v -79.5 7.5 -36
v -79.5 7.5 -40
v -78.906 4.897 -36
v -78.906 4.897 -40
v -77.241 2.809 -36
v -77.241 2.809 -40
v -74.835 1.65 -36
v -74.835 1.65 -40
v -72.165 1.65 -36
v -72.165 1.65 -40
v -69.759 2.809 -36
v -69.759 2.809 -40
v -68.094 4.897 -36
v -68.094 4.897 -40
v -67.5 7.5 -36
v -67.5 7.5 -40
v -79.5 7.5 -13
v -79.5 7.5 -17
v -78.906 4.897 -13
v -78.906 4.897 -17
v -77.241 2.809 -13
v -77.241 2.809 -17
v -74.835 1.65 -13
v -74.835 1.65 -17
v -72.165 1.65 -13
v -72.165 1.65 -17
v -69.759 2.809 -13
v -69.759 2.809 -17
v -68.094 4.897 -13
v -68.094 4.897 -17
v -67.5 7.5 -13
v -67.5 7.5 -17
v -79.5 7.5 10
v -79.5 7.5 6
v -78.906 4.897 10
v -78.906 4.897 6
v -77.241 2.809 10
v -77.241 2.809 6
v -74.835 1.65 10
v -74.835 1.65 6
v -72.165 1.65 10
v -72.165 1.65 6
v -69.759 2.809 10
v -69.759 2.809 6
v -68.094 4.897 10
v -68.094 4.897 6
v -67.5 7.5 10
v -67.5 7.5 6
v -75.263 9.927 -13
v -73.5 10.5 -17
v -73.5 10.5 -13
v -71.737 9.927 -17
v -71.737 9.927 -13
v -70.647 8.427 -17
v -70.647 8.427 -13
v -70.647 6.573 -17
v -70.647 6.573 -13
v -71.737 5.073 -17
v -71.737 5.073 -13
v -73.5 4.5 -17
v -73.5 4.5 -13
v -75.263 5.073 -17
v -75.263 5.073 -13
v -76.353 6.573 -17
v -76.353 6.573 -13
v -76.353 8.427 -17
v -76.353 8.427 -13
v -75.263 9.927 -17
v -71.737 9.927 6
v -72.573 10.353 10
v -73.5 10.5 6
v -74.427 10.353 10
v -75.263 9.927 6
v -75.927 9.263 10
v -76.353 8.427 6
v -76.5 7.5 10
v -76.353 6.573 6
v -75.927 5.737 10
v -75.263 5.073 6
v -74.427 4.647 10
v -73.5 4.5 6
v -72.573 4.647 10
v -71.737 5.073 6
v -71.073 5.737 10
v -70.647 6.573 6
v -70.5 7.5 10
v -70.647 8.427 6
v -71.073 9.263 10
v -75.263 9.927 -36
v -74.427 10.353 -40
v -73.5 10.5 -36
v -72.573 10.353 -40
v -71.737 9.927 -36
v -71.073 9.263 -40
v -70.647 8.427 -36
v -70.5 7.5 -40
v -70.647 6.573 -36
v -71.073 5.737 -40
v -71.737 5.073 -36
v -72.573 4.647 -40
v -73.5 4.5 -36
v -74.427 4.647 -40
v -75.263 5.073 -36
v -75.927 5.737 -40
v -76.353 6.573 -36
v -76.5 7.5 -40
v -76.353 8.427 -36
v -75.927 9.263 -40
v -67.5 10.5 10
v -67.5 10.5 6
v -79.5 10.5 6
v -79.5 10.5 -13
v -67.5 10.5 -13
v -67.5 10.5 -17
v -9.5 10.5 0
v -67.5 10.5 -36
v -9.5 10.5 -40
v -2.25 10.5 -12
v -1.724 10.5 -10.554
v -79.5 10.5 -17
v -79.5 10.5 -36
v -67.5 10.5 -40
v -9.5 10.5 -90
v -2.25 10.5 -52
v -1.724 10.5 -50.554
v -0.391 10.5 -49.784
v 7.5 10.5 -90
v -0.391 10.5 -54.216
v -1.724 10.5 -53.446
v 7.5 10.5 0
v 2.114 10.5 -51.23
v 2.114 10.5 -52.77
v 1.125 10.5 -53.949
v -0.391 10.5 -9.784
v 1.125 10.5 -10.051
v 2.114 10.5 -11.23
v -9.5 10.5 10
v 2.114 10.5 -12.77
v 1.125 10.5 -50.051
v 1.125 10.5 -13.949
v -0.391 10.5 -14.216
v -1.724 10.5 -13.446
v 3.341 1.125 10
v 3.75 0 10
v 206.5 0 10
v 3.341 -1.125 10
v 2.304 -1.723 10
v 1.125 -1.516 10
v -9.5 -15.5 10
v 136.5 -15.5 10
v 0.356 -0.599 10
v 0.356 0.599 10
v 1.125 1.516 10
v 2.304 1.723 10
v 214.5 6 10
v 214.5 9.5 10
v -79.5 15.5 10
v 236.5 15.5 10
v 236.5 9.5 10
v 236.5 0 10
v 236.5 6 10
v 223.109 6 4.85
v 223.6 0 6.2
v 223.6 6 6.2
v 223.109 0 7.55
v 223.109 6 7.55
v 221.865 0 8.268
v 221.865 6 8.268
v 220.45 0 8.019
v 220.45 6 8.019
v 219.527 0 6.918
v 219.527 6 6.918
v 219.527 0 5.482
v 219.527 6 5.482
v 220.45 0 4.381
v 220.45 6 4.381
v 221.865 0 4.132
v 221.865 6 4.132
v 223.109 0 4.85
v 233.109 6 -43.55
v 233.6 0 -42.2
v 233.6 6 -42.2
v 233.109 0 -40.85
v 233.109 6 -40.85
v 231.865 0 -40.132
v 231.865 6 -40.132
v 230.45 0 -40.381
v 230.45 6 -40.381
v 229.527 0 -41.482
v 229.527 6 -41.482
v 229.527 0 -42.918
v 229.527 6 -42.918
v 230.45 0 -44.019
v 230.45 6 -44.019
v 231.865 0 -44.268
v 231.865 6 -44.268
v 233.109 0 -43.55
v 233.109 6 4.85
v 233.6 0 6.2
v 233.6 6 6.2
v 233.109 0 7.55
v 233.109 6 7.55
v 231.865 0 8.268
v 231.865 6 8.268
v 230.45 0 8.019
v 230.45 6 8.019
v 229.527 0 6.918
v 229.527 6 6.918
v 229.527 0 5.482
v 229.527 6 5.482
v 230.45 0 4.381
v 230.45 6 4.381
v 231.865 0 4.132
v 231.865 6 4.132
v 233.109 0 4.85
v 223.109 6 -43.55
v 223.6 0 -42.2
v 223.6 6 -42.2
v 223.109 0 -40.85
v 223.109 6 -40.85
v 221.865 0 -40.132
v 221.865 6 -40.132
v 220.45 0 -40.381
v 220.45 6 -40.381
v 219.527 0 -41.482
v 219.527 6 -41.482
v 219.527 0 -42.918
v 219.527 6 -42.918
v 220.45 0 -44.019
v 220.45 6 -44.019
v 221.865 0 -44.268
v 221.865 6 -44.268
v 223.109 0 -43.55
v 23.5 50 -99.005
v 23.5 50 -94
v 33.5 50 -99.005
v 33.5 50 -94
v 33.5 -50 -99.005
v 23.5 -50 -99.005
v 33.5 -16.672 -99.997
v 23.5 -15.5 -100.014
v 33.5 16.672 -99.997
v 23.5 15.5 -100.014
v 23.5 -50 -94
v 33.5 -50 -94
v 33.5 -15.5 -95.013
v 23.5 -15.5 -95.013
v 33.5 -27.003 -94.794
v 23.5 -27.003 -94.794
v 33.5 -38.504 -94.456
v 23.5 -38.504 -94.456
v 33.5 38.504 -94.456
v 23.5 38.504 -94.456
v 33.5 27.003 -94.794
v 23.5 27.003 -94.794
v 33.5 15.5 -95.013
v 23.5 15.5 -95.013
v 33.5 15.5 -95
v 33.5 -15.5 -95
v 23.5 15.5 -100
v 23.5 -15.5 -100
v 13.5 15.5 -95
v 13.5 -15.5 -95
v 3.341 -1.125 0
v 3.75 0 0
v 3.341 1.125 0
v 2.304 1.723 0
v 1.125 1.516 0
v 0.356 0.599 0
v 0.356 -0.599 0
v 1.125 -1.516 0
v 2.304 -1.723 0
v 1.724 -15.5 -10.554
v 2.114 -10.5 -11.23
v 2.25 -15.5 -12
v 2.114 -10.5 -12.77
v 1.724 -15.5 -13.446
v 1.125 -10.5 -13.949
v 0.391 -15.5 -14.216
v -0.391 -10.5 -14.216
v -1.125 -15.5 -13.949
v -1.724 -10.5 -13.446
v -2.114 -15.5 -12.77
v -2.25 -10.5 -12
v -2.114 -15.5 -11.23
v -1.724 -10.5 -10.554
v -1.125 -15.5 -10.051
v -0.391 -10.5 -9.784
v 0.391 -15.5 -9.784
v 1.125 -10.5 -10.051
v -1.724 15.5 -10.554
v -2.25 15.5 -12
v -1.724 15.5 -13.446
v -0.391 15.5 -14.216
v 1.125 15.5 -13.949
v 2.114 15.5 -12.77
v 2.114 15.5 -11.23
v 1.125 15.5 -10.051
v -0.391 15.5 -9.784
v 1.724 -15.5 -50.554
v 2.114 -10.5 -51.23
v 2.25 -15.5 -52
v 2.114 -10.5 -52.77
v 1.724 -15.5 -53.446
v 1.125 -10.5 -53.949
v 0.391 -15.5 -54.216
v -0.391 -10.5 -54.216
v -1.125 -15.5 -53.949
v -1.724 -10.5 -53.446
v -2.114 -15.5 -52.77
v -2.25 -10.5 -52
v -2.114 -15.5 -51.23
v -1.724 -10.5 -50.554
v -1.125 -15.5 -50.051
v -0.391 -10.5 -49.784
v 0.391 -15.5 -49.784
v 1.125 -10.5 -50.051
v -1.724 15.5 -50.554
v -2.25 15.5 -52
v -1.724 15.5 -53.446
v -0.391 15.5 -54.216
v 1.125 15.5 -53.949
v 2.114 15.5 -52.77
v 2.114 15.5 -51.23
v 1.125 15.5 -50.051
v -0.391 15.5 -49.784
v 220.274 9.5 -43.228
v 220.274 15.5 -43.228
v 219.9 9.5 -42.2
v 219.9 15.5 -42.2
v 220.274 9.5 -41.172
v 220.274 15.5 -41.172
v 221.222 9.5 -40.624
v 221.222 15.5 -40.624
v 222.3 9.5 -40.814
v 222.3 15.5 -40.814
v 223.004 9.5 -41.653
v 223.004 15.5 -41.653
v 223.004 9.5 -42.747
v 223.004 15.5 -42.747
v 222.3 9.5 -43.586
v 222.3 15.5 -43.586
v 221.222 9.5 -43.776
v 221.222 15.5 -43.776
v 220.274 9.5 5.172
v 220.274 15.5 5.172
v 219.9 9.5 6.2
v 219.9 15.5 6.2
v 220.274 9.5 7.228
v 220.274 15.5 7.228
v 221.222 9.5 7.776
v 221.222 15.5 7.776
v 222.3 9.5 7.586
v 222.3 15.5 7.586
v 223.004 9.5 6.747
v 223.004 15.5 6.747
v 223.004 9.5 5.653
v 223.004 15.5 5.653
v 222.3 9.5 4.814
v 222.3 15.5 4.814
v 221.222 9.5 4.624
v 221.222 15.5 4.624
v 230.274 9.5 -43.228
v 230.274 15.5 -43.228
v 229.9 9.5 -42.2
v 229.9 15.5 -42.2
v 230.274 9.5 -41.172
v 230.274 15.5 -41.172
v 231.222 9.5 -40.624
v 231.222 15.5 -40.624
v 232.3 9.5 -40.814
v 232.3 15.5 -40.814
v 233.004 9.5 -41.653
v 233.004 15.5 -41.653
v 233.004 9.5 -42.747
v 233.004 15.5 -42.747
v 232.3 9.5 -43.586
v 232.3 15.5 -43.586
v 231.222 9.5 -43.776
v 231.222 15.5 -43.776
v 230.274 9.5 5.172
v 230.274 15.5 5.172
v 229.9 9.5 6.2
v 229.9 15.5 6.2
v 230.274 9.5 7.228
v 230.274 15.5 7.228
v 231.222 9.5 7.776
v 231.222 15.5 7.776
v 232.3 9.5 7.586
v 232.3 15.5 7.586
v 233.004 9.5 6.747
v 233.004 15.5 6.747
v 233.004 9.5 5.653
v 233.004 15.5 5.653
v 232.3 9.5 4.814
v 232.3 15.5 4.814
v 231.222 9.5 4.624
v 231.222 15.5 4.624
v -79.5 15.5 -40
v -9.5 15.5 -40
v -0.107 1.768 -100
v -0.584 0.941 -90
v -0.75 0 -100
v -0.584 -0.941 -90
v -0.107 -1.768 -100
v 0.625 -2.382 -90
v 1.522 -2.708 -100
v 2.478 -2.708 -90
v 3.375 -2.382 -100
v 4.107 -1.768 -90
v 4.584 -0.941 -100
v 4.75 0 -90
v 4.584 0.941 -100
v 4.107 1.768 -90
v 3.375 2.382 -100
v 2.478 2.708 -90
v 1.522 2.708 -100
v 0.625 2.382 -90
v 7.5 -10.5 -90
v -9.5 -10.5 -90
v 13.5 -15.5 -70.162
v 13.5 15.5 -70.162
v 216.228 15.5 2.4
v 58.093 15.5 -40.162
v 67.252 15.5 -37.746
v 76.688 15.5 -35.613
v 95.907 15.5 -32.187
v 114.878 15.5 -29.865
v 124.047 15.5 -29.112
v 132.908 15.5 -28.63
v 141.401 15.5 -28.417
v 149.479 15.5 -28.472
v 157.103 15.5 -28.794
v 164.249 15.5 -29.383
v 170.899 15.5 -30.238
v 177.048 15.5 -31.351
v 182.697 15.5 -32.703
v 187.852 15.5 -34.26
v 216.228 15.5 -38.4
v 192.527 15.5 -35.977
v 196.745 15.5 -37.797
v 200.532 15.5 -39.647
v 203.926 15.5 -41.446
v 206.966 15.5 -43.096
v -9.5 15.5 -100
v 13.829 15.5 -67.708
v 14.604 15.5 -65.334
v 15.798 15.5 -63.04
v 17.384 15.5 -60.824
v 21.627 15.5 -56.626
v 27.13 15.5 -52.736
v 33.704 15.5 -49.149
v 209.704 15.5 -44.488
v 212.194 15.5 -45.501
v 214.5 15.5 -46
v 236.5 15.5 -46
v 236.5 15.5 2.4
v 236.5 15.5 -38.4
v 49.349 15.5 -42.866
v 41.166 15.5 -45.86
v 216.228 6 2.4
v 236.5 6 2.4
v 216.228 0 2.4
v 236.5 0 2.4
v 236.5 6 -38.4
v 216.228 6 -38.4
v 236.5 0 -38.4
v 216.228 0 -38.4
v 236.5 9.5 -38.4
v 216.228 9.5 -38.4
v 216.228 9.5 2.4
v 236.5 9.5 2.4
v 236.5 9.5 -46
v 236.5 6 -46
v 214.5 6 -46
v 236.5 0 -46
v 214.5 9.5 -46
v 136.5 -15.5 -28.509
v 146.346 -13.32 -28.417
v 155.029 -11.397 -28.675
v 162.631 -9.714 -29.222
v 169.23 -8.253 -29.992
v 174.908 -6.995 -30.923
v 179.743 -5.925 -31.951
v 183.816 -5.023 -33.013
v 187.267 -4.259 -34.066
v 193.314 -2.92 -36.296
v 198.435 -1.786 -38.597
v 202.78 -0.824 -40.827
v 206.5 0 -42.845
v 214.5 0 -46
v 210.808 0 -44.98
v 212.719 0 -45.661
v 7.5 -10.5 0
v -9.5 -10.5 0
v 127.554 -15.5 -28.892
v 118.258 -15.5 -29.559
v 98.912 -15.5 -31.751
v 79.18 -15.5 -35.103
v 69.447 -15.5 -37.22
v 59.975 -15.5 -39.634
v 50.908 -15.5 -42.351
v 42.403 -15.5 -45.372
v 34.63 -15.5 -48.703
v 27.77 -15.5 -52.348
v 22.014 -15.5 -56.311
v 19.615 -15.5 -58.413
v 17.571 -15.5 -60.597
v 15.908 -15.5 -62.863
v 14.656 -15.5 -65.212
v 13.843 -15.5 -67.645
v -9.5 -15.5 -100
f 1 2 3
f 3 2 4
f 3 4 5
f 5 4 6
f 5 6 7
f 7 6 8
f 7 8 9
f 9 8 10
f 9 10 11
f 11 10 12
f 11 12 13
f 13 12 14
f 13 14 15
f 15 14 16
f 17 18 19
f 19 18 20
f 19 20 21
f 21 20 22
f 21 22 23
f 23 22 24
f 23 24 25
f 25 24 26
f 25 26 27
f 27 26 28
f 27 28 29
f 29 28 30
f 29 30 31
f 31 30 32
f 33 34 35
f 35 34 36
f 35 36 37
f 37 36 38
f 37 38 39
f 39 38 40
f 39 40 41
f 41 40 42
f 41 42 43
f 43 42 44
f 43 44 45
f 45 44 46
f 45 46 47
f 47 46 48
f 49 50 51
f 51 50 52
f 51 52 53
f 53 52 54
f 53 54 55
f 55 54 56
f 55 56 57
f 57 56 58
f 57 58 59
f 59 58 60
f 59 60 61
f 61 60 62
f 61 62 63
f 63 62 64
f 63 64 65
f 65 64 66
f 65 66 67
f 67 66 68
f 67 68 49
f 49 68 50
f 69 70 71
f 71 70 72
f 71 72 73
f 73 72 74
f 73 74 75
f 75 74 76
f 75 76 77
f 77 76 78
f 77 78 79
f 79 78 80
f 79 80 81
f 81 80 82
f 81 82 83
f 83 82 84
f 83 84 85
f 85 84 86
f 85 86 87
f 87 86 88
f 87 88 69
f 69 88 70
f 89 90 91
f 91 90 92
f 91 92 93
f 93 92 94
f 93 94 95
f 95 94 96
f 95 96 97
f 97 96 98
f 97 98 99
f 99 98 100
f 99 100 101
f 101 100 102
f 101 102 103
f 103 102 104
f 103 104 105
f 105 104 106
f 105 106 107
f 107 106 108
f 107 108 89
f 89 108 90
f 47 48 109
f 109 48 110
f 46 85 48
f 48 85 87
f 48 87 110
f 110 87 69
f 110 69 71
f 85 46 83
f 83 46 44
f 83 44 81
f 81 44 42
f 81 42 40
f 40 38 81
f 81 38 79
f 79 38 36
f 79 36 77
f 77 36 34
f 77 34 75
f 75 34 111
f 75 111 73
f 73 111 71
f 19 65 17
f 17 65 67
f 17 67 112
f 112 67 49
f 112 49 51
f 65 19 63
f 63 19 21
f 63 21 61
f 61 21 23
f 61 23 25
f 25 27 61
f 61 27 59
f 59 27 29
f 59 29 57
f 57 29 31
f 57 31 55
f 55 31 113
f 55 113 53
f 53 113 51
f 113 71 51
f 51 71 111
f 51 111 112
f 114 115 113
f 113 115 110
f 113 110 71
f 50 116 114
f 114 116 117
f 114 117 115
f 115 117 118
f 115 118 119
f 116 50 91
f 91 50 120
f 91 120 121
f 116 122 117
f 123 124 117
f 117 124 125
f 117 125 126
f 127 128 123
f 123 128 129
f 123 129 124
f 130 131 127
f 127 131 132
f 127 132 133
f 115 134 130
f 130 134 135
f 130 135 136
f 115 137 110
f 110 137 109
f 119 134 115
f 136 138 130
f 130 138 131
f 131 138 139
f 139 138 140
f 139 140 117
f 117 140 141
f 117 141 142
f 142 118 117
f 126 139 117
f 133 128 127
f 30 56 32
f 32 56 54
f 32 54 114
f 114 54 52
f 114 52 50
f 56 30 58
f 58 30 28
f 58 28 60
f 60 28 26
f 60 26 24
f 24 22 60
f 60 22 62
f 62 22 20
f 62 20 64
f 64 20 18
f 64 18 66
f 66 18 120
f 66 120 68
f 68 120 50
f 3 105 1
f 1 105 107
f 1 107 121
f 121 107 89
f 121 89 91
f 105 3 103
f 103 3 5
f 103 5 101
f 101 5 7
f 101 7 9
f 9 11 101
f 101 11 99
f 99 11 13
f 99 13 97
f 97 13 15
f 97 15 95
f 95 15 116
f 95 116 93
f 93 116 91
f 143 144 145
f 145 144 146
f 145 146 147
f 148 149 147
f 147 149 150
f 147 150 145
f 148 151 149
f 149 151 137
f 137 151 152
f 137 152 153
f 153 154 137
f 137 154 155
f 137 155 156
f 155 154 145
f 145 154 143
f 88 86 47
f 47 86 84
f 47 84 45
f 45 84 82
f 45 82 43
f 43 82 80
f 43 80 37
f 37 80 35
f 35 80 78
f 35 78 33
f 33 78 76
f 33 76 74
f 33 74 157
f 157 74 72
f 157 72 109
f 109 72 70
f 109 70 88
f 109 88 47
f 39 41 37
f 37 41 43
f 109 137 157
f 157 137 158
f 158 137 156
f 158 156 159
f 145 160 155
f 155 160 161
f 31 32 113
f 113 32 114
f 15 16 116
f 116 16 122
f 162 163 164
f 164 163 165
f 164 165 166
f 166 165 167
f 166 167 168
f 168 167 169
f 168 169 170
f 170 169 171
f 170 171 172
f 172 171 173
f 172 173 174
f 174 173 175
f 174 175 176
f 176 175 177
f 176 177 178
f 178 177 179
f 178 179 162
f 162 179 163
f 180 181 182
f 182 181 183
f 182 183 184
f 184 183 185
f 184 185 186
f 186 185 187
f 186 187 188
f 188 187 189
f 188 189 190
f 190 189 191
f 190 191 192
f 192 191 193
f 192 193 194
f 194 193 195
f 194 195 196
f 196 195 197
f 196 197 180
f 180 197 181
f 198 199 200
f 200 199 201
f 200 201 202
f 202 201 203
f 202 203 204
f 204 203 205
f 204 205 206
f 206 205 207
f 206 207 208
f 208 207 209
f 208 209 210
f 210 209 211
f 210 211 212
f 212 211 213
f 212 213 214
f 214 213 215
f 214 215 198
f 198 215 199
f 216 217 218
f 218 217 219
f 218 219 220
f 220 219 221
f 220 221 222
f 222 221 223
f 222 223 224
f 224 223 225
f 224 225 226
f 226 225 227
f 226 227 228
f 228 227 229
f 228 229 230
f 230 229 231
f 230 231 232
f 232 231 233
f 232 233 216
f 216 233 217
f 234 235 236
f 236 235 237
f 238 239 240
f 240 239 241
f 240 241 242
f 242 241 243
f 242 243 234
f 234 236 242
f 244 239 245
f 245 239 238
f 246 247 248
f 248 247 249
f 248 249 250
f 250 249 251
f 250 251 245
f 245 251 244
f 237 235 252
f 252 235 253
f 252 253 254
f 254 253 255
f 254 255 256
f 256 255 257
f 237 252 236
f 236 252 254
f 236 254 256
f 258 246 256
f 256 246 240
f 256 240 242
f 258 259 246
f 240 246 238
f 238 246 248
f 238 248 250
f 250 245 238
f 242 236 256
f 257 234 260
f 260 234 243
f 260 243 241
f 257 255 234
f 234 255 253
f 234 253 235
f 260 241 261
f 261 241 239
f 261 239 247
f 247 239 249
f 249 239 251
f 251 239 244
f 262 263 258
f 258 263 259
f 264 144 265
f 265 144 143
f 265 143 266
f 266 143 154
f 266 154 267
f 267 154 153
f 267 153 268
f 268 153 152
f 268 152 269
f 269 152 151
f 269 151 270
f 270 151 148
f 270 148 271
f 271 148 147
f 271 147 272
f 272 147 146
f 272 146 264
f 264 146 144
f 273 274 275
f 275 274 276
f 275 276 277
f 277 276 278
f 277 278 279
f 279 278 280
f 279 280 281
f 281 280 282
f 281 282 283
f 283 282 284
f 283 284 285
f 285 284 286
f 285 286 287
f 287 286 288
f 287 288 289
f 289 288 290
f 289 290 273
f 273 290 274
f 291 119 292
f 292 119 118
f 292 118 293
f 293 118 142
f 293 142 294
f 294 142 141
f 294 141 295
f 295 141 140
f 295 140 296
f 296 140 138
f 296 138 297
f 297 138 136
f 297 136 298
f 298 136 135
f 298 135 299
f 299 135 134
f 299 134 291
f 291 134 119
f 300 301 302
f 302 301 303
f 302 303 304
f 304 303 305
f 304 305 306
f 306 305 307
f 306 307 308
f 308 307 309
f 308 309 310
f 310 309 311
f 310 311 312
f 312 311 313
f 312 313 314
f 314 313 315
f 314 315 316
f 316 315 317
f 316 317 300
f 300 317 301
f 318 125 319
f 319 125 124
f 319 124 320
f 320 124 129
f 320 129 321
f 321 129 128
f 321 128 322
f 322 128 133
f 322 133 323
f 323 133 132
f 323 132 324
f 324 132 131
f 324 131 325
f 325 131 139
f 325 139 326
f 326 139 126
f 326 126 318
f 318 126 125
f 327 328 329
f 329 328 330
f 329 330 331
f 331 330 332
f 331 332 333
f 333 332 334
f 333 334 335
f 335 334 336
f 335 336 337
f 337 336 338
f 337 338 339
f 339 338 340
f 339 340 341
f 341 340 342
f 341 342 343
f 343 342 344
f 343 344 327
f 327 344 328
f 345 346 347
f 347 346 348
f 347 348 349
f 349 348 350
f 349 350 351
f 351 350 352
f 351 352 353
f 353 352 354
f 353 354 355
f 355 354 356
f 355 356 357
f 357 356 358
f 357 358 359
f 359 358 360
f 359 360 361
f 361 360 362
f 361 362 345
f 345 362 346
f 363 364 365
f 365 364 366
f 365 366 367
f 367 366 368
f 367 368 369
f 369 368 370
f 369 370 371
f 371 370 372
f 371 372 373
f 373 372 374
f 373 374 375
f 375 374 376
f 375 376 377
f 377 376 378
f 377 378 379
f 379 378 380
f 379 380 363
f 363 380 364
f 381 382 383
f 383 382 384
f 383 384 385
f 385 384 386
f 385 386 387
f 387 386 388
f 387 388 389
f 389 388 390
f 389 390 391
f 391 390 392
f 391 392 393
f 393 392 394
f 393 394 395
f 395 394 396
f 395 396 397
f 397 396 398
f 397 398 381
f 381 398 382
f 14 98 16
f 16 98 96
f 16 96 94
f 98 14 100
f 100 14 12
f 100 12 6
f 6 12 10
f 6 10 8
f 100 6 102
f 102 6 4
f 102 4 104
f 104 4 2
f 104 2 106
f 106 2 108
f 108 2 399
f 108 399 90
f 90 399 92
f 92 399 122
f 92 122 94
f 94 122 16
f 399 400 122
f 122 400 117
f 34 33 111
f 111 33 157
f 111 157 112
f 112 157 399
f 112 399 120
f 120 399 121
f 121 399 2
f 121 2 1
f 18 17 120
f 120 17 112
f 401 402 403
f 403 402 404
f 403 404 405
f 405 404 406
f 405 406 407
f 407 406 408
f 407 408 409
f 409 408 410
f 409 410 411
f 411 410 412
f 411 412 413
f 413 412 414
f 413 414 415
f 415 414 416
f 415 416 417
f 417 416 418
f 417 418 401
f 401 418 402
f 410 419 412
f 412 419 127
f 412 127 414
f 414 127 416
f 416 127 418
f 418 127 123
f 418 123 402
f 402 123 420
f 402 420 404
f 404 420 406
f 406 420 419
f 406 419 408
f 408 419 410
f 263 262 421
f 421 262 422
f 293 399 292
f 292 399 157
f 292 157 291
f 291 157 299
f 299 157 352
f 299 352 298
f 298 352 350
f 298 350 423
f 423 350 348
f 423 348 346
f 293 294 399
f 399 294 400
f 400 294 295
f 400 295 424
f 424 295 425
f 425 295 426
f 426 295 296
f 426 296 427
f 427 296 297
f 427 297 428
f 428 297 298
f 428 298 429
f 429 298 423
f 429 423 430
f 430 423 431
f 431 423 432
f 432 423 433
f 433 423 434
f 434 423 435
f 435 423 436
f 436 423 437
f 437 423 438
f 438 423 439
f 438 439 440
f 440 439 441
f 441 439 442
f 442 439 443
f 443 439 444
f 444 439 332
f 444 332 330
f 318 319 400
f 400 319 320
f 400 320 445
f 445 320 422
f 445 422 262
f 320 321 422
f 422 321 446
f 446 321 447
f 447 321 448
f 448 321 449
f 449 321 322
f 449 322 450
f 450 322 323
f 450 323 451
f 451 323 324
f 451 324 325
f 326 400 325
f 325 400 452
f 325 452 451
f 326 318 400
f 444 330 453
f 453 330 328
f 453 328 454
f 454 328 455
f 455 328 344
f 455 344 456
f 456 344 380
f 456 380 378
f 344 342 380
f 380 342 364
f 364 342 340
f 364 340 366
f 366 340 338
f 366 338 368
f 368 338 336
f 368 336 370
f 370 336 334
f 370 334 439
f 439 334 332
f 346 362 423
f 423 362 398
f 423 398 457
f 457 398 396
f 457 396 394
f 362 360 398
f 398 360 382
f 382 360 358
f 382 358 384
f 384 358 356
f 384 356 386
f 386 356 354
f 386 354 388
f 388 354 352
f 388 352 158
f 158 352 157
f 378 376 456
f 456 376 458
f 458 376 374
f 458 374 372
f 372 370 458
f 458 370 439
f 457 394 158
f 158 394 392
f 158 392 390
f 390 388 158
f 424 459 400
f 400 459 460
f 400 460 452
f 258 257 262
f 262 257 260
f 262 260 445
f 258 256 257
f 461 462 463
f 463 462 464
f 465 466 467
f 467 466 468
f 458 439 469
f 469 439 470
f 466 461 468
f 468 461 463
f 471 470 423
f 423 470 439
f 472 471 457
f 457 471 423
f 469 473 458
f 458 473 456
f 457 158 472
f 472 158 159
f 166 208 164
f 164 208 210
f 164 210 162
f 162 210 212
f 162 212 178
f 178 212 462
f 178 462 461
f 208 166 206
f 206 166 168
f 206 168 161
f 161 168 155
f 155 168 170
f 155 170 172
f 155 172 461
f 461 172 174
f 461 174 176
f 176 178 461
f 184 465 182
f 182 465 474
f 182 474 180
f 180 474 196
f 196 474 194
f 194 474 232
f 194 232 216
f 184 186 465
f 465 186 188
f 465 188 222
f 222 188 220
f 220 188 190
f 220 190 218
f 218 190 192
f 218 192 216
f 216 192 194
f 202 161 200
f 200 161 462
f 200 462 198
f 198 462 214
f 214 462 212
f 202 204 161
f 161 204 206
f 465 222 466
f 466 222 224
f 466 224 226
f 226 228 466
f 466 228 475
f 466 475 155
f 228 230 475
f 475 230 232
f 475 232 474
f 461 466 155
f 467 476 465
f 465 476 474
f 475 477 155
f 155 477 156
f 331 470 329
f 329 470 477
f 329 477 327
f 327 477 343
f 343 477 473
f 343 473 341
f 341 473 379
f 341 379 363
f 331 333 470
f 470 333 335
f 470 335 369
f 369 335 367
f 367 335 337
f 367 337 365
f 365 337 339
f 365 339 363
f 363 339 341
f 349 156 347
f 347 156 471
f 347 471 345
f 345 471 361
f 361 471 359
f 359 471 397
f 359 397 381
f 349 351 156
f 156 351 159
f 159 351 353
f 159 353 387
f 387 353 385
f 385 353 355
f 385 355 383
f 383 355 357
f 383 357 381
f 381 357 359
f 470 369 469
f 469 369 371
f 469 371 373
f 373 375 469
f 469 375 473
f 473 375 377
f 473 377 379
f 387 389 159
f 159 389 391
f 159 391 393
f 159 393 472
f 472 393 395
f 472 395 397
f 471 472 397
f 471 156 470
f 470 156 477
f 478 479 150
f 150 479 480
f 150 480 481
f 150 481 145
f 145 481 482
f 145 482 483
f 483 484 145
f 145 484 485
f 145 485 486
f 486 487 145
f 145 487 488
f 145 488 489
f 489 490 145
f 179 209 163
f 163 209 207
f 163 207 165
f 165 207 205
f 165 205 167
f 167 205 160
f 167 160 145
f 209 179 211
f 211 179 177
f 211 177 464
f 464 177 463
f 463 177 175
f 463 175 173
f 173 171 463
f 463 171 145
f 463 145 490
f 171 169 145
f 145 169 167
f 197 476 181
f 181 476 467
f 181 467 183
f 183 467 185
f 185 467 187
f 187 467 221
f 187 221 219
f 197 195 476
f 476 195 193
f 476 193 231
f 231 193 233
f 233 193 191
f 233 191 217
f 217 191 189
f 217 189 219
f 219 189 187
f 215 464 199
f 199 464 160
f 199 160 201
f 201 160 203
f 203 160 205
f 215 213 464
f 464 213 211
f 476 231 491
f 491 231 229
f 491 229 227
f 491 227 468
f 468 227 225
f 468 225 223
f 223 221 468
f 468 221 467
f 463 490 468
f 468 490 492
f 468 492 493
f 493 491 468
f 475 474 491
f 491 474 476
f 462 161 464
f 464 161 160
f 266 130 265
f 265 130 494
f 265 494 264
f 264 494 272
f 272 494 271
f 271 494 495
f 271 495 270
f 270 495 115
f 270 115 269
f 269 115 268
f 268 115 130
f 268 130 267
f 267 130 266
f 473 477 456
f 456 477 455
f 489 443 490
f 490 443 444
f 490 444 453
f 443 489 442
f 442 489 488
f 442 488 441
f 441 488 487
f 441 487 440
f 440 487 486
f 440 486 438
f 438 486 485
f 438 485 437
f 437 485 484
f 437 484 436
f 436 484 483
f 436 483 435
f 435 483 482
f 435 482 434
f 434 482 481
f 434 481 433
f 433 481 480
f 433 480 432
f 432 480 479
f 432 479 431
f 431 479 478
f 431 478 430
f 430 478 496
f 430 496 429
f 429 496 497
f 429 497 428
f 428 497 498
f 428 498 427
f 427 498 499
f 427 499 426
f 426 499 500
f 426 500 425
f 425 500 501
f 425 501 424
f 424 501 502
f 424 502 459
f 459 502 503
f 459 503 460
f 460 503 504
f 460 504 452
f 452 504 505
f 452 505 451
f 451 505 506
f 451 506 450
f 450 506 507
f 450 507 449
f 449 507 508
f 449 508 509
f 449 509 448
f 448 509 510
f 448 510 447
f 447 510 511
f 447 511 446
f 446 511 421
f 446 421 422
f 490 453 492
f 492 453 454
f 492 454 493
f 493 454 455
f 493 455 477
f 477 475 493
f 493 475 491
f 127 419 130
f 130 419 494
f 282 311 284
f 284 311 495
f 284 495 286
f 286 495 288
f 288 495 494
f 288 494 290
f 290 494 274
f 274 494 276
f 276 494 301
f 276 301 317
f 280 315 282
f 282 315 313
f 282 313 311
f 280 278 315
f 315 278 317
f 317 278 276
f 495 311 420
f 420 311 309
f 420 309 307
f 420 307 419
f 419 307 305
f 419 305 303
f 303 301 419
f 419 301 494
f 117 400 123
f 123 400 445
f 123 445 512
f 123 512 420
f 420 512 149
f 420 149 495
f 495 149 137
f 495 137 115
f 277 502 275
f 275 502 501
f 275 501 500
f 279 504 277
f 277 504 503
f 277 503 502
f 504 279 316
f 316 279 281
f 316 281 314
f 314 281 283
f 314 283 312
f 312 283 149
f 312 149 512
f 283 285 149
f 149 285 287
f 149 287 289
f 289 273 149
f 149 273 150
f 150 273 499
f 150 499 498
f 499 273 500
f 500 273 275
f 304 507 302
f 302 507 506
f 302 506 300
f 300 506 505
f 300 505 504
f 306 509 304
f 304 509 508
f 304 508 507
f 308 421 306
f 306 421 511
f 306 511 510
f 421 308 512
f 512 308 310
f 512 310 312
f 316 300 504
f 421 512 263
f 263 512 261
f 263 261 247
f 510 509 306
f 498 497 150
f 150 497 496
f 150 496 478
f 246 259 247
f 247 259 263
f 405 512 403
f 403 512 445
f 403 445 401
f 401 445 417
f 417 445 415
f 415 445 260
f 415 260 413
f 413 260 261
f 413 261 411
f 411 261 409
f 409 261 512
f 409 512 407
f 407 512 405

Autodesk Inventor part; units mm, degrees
sketch "Skizze1" plane through (0, 0, 0) normal (0, 0, 1) x (1, 0, 0)
  line L0 (-9.5, -10.5) -> (7.5, -10.5)
  line L1 (7.5, -10.5) -> (7.5, 10.5)
  line L2 (7.5, 10.5) -> (-9.5, 10.5)
  line L3 (-14.1, 0) -> (18.1, 0) projected
  line L4 (0, -21.7) -> (0, 21.7) projected
  line L5 (-9.5, -10.5) -> (-9.5, -15.5)
  line L6 (-9.5, -15.5) -> (13.5, -15.5)
  line L7 (-9.5, 10.5) -> (-9.5, 15.5)
  line L8 (-9.5, 15.5) -> (13.5, 15.5)
  line L9 (13.5, 15.5) -> (13.5, -15.5)
  point P0 (0, 0)
  dimension "d2" = 21
  dimension "d4" = 7.5
  dimension "d5" = 5
  dimension "d8" = 5
  dimension "d9" = 23
  dimension "d147" = 6
  dimension "d148" = 23
extrude "Tower" add sketch "Skizze1" against normal blind 100 contours L0 L4 L6 L5 | L0 L1 L3 L9 L6 L4 | L1 L2 L4 L8 L9 L3 | L2 L7 L8 L4
ref_plane "Arbeitsebene1" through (0, 0, -100) normal (0, 0, -1) x (-1, 0, 0)
sketch "Skizze6" plane through (-9.5, 15.5, 0) normal (0, 1, 0) x (1, 0, 0)
  line L0 (0, 0) -> (23, 0) projected
  line L1 (0, 0) -> (0, -10)
  line L2 (0, -10) -> (228, -10)
  line L3 (23, 0) -> (23, 100) projected
  line L4 (0, -10) -> (246, -10)
  line L5 (246, -10) -> (246, 46)
  line L6 (246, 46) -> (224, 46)
  line L7 (246, 46) -> (268, 46) construction
  line L8 (23, 71.167) -> (23, 0)
  line L9 (0, 0) -> (17, 0) projected
  line L10 (0, 0) -> (0, -12)
  line L11 (246, -12) -> (246, -10)
  spline S0 degree 4 poles (224, 46) (217.2503, 45.4128) (195.5245, 22.479) (125.572, 22.5752) (22.0276, 45.7385) (23, 71.167) knots 0 0 0 0 0 0.374897 1 1 1 1 1
  line L12 (221.3219, 44.8948) -> (192.3718, 31.261) construction
  arc A0 (195.0075, 33.4464) -> (217.9584, 44.255) centre (166.5411, 123.6635) ccw construction
  line L13 (148.8192, 27.3272) -> (94.421, 32.9509) construction
  arc A1 (99.9704, 33.0497) -> (143.4073, 28.5591) centre (158.3015, 384.9585) ccw construction
  line L14 (0, 0) -> (0, 100) projected
  point P0 (9.5, 0)
  point P1 (206.8469, 38.0779)
  point P2 (121.6201, 30.1391)
  point P3 (23, 70.1618)
  dimension "d34" = 10
  dimension "d38" = 246
  dimension "d39" = 56
  dimension "d40" = 180
  dimension "d41" = 22
extrude "Gripperbogen" add sketch "Skizze6" against normal blind 31 contours L0 L3 S0 L6 L5 L4 L2 L1
sketch "Skizze9" plane through (-9.5, 15.5, 10) normal (0, 0, 1) x (1, 0, 0)
  line L0 (216, -15.5) -> (246, -15.5)
  line L1 (246, 0) -> (246, -31) projected
  line L2 (216, -15.5) -> (246, -15.5) construction
  line L3 (246, -15.5) -> (246, -31)
  line L4 (224, 0) -> (224, -31) projected
  line L5 (246, -9.5) -> (224, -9.5)
  line L6 (224, -9.5) -> (224, -6)
  line L7 (224, -6) -> (246, -6)
  line L8 (246, -6) -> (246, -9.5)
  line L9 (0, 0) -> (246, 0) projected
  line L10 (0, 0) -> (246, 0) projected
  line L11 (0, 0) -> (0, -31) projected
  line L12 (246, -31) -> (0, -31) projected
  line L13 (246, 0) -> (246, -31) projected
  line L14 (216, -15.5) -> (146, -31)
  point P0 (9.5, -15.5)
  point P1 (246, -6)
  point P2 (235, -6)
  dimension "d61" = 3.5
  dimension "d150" = 6
  dimension "d151" = 6
  dimension "d152" = 100
  dimension "d153" = 30
extrude "Extrusion8" cut sketch "Skizze9" against normal blind 74.5 contours L0 L4 L12 L14 | L0 L1 L12 L4 | L4 L7 L1 L5
sketch "Skizze10" plane through (-9.5, 15.5, -100) normal (0, 1, 0) x (1, 0, 0)
  line L0 (225.7282, -61.6) -> (255.0049, -61.6)
  line L1 (255.0049, -61.6) -> (255.0049, -102.4)
  line L2 (255.0049, -102.4) -> (225.7282, -102.4)
  line L3 (225.7282, -102.4) -> (225.7282, -61.6)
  line L4 (0, -110) -> (246, -110) projected
  line L5 (246, -54) -> (224, -54) projected
  point P0 (9.5, -100)
  dimension "d64" = 7.6
  dimension "d65" = 7.6
extrude "Extrusion9" cut sketch "Skizze10" against normal blind 74.5
sketch "Skizze12" plane through (0, 0, -100) normal (0, 0, -1) x (-1, 0, 0)
  line L0 (-214.5, 9.5) -> (-236.5, 9.5) projected
  line L1 (-236.5, 15.5) -> (-236.5, 9.5) projected
  line L2 (9.5, 15.5) -> (-236.5, 15.5) projected
  line L3 (9.5, 15.5) -> (9.5, -15.5) projected
  line L4 (-136.5, -15.5) -> (9.5, -15.5) projected
  line L5 (-136.5, -15.5) -> (-206.5, 0) projected
  line L6 (-206.5, 0) -> (-236.5, 0) projected
  line L7 (-236.5, 6) -> (-236.5, 0) projected
  line L8 (-236.5, 6) -> (-214.5, 6) projected
  line L9 (-214.5, 6) -> (-214.5, 9.5) projected
  line L10 (-7.5, 10.5) -> (9.5, 10.5) projected
  line L11 (9.5, 10.5) -> (9.5, 15.5) projected
  line L12 (9.5, 15.5) -> (-13.5, 15.5) projected
  line L13 (-13.5, 15.5) -> (-13.5, -15.5) projected
  line L14 (-13.5, -15.5) -> (9.5, -15.5) projected
  line L15 (9.5, -15.5) -> (9.5, -10.5) projected
  line L16 (9.5, -10.5) -> (-7.5, -10.5) projected
  line L17 (-7.5, -10.5) -> (-7.5, 10.5) projected
  line L18 (-13.5, 15.5) -> (-13.5, -15.5) projected
  line L19 (-13.5, -15.5) -> (9.5, -15.5)
  line L20 (9.5, -15.5) -> (9.5, 15.5)
  line L21 (9.5, 15.5) -> (-13.5, 15.5)
  line L22 (-13.5, 15.5) -> (-13.5, -15.5)
  point P0 (9.5, 25.25)
  point P1 (-13.5, -5.25)
  point P2 (-13.5, 15.5)
extrude "Extrusion10" add sketch "Skizze12" against normal blind 10 contours L2 L3 L10 L17 L16 L4 L13 | L3 L16 L17 L10
ref_plane "Arbeitsebene3" through (0, 0, -113.5) normal (0, 0, -1) x (-1, 0, 0)
ref_plane "Arbeitsebene4" through (-9.5, -5.25, -113.5) normal (-1, 0, 0) x (0, 0, 1)
sketch "Skizze18" plane through (0, 0, -90) normal (0, 0, 1) x (1, 0, 0)
  line L0 (7.5, 10.5) -> (7.5, -10.5) projected
  line L1 (-9.5, 10.5) -> (7.5, 10.5) projected
  circle A0 centre (2, 0) radius 2.75
  line L2 (7.5, -10.5) -> (-9.5, -10.5) projected
  line L3 (-9.5, 10.5) -> (-9.5, -10.5) projected
  point P0 (0, 0)
  dimension "d132" = 5.5
  dimension "d154" = 0
  dimension "d155" = 11.5
  dimension "d161" = 21
  dimension "d162" = 17
extrude "Extrusion15" cut sketch "Skizze18" against normal through all contours A0
sketch "Skizze19" plane through (-9.5, -15.5, -100) normal (-1, 0, 0) x (0, 0, 1)
  line L0 (0, 0) -> (0, 31) projected
  line L1 (110, 0) -> (0, 0) projected
  line L2 (110, 31) -> (110, 0) projected
  line L3 (0, 31) -> (110, 31) projected
  line L4 (100, 26) -> (10, 26) projected
  line L5 (100, 26) -> (100, 5) projected
  line L6 (100, 5) -> (10, 5) projected
  line L7 (60, 31) -> (60, 0)
  line L8 (10, 26) -> (10, 5) projected
  line L9 (10, 26) -> (0, 26)
  line L10 (10, 5) -> (0, 5)
  line L11 (100, 26) -> (110, 26)
  line L12 (10, 26) -> (10, 5) projected
  point P0 (100, 15.5)
  point P1 (23.5, 25.5)
  point P2 (23.5, 5)
  point P3 (60, 26)
  point P4 (60, 5)
  point P5 (20, 10.25)
  dimension "d113" = 50
extrude "Extrusion16" add sketch "Skizze19" along normal blind 70 contours L11 L4 L7 L3 L2
sketch "Skizze27" plane through (206.3978, 0, 10) normal (0, -1, 0) x (1, 0, 0)
  line L0 (9.8304, -7.6) -> (30.1022, -7.6) projected
  line L1 (30.1022, 0) -> (30.1022, -7.6) projected
  line L2 (0.1022, 0) -> (30.1022, 0) projected
  line L3 (0.1022, 0) -> (0.1022, -52.845) projected
  line L4 (30.1022, -56) -> (8.1022, -56) projected
  line L5 (30.1022, -48.4) -> (30.1022, -56) projected
  line L6 (30.1022, -48.4) -> (9.8304, -48.4) projected
  line L7 (9.8304, -48.4) -> (9.8304, -7.6) projected
  circle A0 centre (25.1022, -3.8) radius 1.6
  circle A1 centre (15.1022, -3.8) radius 1.6
  line L8 (30.1022, 0) -> (30.1022, -7.6) projected
  circle A2 centre (25.1022, -52.2) radius 1.6
  circle A3 centre (15.1022, -52.2) radius 1.6
  point P0 (-206.3978, -10)
  point P1 (30.1022, -3.8)
  point P2 (28.2249, -52.2)
  point P3 (30.1022, -52.2)
  dimension "d120" = 3.2
  dimension "d121" = 5
  dimension "d122" = 3.2
  dimension "d123" = 10
  dimension "d127" = 3.2
  dimension "d129" = 3.2
extrude "Extrusion18" cut sketch "Skizze27" against normal blind 20
sketch "Skizze15" plane through (-9.5, -15.5, -100) normal (0, -1, 0) x (1, 0, 0)
  line L0 (23, 0) -> (0, 0) projected
  line L1 (23, 29.8382) -> (23, 0) projected
  circle A0 centre (9.5, 48) radius 2.25
  circle A1 centre (9.5, 88) radius 2.25
  line L2 (146, 110) -> (0, 110) projected
  line L3 (0, 110) -> (0, 0) projected
  line L4 (146, 71.4914) -> (146, 110) projected
  point P0 (9.5, 100)
  dimension "d138" = 4.5
  dimension "d142" = 4.5
  dimension "d143" = 40
  dimension "d156" = 22
  dimension "d157" = 9.5
extrude "Extrusion13" cut sketch "Skizze15" against normal blind 100
sketch "Skizze32" plane through (-9.5, -15.5, 10) normal (0, 0, 1) x (1, 0, 0)
  circle A0 centre (11.5, 15.5) radius 2.75 projected
  line L0 (0, 0) -> (0, 31) projected
  line L1 (0, 31) -> (23, 31) projected
  line L2 (23, 31) -> (23, 0) projected
  line L3 (23, 0) -> (0, 0) projected
  circle A1 centre (11.5, 15.5) radius 1.75
  point P0 (9.5, 15.5)
  dimension "d158" = 3.5
extrude "Extrusion20" cut sketch "Skizze32" against normal blind 10 contours A1
sketch "Skizze34" plane through (0, 0, -100) normal (0, 0, -1) x (-1, 0, 0)
  circle A0 centre (-2, 0) radius 2.75 projected
  line L0 (9.5, -15.5) -> (9.5, 15.5) projected
  line L1 (9.5, 15.5) -> (-13.5, 15.5) projected
  line L2 (-13.5, 15.5) -> (-13.5, -15.5) projected
  line L3 (-13.5, -15.5) -> (9.5, -15.5) projected
  point P0 (0, 0)
  dimension "d171" = 23
  dimension "d172" = 31
  dimension "d173" = 15.5
  dimension "d174" = 11.5
  dimension "d175" = 5.5
sketch "Skizze35" plane through (13.5, -15.5, -100) normal (1, 0, 0) x (0, 0, -1)
  line L0 (-29.8382, 31) -> (0, 31) projected
  line L1 (-29.8382, 0) -> (0, 0) projected
  line L2 (0, 31) -> (0, 0) projected
  line L3 (-29.8382, 31) -> (0, 31) projected
  line L4 (-29.8382, 31) -> (-29.8382, 0) projected
  line L5 (-29.8382, 0) -> (0, 0) projected
  line L6 (0, 31) -> (0, 0) projected
  line L7 (0, 0) -> (-5, 0)
  line L8 (-5, 0) -> (-5, 31)
  line L9 (-5, 31) -> (0, 31)
  line L10 (0, 31) -> (0, 0)
  point P0 (-100, 15.5)
  point P1 (-5, 31)
  point P2 (-5, 0)
  dimension "d176" = 5
extrude "Extrusion22" add sketch "Skizze35" along normal blind 10 contours L0 L2 L1 L8
sketch "Skizze36" plane through (23.5, -15.5, -100) normal (1, 0, 0) x (0, 0, -1)
  line L0 (-5, 0) -> (0, 0) projected
  line L1 (0, 0) -> (0, 31) projected
  line L2 (0, 31) -> (-5, 31) projected
  line L3 (-5, 31) -> (-5, 0) projected
  arc A0 (-9.879, -89.9986) -> (-9.879, 121.0014) centre (-1120.404, 15.5014) ccw
  line L4 (-5, 15.5) -> (0, 15.5)
  arc A1 (-4.9014, -90.4715) -> (-4.9014, 121.4742) centre (-1120.404, 15.5014) ccw
  line L5 (-5, 15.5) -> (0, 15.5)
  line L6 (-14.7679, -34.5) -> (17.3967, -34.5)
  line L7 (-14.7679, 65.5) -> (14.0644, 65.5)
  point P0 (-100, 15.5)
  point P1 (-0.9951, 65.5)
  point P2 (-6.0001, 65.5)
  point P3 (-4.9867, 31)
  point P4 (-4.9867, 0)
  point P5 (-6.0002, -34.5)
  point P6 (-0.9952, -34.5)
  dimension "d181" = 5
  dimension "d182" = 100
extrude "Extrusion23" add sketch "Skizze36" along normal blind 10
sketch "Skizze40" plane through (206.5, 0, 10) normal (0, -1, 0) x (1, 0, 0)
  circle A0 centre (15, -52.2) radius 1.6 projected
  circle A1 centre (15, -3.8) radius 1.6 projected
  circle A2 centre (25, -52.2) radius 1.6 projected
  circle A3 centre (25, -3.8) radius 1.6 projected
  circle A4 centre (15, -3.8) radius 2.1
  circle A5 centre (25, -3.8) radius 2.1
  circle A6 centre (15, -52.2) radius 2.1
  circle A7 centre (25, -52.2) radius 2.1
  point P0 (-206.5, -10)
  dimension "d198" = 4.2
  dimension "d199" = 4.2
  dimension "d200" = 4.2
  dimension "d201" = 4.2
extrude "Extrusion27" cut sketch "Skizze40" against normal blind 6 contours A0 | A1 | A2 | A3 | A4 | A5 | A6 | A7
sketch "Skizze41" plane through (-9.5, 10.5, 0) normal (0, -1, 0) x (1, 0, 0)
  line L0 (0, 10) -> (-70, 10) projected
  line L1 (-70, -40) -> (-70, 10) projected
  line L2 (0, -40) -> (-70, -40) projected
  line L3 (-70, 10) -> (-58, 10)
  line L4 (-58, 10) -> (-58, 6)
  line L5 (-58, 6) -> (-70, 6)
  line L6 (-70, 6) -> (-70, 10)
  line L7 (-70, -40) -> (-58, -40)
  line L8 (-58, -40) -> (-58, -36)
  line L9 (-58, -36) -> (-70, -36)
  line L10 (-70, -36) -> (-70, -40)
  line L11 (-70, -25) -> (-70, -21)
  line L12 (-70, -9) -> (-70, -5)
  line L13 (-70, -15) -> (0, -15)
  line L14 (0, 10) -> (0, -100) projected
  line L15 (-70, -13) -> (-58, -13)
  line L16 (-58, -13) -> (-58, -17)
  line L17 (-58, -17) -> (-70, -17)
  line L18 (-70, -17) -> (-70, -13)
  point P0 (9.5, 0)
  point P1 (-70, -36)
  point P2 (-70, 6)
  point P3 (-58, 8)
  point P4 (-58, -15)
  point P5 (-58, -38)
  point P6 (-70, -17)
  dimension "d204" = 12
  dimension "d205" = 4
  dimension "d207" = 4
  dimension "d222" = 4
extrude "Extrusion28" add sketch "Skizze41" along normal blind 9 contours L4 L5 L1 L0 | L16 L17 L1 L13 | L13 L1 L15 L16 | L2 L1 L9 L8
sketch "Skizze42" plane through (-9.5, -15.5, 10) normal (0, 0, 1) x (1, 0, 0)
  line L0 (-58, 17) -> (-70, 17) projected
  line L1 (-70, 26) -> (-58, 26) projected
  line L2 (-58, 26) -> (-70, 26)
  line L3 (-64, 26) -> (-64, 17)
  line L4 (-61, 26) -> (-67, 26)
  line L5 (-70, 31) -> (-70, 17) projected
  line L6 (-58, 26) -> (-58, 17) projected
  circle A0 centre (-64, 23) radius 3
  arc A1 (-70, 23) -> (-58, 23) centre (-64, 23) ccw
  point P0 (9.5, 15.5)
  point P1 (0, 17)
  dimension "d220" = 6
  dimension "d221" = 3
extrude "Extrusion29" cut sketch "Skizze42" against normal blind 100 contours L0 A1 L6 | L0 L5 A1 | A0 L3 | L3 A0
properties part number "Korpus"
